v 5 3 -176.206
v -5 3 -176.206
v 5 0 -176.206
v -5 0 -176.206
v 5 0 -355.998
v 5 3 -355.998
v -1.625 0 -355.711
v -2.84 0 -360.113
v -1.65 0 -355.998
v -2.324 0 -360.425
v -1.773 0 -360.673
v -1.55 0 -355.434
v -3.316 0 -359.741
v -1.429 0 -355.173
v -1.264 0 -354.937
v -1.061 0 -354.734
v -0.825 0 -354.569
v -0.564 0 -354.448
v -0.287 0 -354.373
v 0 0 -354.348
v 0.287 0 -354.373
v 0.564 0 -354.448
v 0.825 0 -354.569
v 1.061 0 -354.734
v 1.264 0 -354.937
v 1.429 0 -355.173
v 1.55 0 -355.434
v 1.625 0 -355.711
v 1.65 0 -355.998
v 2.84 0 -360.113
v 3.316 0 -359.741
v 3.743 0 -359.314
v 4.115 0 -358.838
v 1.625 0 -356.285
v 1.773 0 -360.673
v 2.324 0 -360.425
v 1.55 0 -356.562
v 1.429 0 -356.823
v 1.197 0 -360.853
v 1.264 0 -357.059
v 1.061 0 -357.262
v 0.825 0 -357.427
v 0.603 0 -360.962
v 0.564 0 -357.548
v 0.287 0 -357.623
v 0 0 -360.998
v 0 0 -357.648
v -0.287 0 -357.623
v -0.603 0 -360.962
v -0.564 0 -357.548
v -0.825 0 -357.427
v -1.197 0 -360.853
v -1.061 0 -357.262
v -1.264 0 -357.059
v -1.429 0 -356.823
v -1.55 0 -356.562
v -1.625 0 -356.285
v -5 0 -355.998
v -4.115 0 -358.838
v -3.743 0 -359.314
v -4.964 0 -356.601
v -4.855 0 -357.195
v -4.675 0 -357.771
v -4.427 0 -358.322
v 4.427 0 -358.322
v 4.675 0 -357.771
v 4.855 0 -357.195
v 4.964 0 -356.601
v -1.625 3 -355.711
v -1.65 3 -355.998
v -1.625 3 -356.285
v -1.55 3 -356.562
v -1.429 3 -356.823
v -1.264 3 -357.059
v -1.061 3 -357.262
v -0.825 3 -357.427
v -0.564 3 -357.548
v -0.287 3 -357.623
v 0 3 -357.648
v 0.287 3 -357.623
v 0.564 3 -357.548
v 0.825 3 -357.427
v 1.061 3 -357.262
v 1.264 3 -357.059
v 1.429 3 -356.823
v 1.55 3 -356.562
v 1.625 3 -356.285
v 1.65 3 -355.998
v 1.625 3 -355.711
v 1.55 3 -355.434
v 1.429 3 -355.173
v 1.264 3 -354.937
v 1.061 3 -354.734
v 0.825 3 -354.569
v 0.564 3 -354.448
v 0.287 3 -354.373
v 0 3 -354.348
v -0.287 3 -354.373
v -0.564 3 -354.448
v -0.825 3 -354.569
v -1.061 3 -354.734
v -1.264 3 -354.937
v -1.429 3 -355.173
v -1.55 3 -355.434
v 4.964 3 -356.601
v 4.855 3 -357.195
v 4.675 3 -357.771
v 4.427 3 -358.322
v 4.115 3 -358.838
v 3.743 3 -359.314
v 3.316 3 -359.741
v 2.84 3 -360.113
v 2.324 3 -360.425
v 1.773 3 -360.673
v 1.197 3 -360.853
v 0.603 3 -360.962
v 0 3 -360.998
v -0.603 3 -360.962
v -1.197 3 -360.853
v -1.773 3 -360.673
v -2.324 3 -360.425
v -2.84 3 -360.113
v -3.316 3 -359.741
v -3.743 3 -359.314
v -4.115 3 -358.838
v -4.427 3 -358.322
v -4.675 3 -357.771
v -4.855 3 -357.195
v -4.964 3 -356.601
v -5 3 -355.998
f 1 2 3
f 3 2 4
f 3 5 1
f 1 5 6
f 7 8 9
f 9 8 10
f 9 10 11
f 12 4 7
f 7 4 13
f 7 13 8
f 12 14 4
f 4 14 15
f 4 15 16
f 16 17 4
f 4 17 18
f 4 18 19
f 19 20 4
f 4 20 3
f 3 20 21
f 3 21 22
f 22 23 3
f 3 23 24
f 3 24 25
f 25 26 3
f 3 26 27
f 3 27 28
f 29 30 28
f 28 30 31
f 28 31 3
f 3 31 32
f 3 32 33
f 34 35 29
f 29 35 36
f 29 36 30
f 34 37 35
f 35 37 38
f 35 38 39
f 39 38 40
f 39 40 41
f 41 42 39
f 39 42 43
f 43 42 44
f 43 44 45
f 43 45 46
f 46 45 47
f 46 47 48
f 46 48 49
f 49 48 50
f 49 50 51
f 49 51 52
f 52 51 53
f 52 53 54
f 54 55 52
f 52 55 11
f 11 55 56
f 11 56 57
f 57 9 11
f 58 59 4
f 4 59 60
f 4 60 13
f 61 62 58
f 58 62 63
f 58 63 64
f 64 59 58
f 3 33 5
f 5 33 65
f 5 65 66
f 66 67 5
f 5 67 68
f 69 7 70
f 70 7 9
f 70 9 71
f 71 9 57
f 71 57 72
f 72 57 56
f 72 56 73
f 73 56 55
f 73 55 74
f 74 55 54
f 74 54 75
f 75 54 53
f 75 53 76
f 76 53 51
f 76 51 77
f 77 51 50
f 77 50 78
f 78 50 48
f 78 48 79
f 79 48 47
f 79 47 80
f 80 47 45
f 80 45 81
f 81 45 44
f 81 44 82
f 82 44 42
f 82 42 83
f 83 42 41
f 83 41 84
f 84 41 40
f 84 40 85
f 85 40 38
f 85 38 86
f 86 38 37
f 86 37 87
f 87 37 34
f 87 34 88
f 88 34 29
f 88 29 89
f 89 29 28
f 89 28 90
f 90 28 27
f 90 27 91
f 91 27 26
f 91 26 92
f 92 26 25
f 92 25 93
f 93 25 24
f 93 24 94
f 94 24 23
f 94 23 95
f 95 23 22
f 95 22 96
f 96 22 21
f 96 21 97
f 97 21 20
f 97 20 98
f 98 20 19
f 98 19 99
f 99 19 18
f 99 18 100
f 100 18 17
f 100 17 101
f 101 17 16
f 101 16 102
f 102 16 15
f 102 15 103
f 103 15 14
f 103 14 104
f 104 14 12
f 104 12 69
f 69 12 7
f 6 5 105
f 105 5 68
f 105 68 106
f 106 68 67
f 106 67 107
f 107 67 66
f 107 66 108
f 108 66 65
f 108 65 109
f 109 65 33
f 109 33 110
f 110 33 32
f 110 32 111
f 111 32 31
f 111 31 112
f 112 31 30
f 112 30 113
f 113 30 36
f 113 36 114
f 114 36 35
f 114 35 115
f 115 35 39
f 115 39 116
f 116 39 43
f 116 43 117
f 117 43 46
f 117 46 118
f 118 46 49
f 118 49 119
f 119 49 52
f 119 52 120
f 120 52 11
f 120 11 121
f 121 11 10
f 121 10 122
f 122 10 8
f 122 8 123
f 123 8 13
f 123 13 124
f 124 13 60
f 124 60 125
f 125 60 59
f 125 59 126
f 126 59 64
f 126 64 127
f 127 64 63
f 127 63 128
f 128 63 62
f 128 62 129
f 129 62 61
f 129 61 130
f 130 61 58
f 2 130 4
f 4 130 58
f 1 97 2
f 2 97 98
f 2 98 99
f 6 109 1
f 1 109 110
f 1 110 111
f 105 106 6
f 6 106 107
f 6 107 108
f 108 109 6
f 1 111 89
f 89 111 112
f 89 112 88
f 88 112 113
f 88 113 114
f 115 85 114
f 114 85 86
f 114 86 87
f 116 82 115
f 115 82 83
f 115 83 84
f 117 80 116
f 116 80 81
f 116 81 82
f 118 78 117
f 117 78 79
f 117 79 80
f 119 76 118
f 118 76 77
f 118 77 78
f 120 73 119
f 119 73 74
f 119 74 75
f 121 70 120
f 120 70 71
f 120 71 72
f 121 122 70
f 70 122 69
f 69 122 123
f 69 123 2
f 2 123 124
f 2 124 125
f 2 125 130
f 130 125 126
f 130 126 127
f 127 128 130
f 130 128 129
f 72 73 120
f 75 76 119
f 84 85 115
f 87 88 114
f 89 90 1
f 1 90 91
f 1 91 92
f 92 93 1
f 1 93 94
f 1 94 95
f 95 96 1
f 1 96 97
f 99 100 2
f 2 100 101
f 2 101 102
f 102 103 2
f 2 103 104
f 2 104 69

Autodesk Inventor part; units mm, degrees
ref_plane "YZ Plane" through (0, 0, 0) normal (1, 0, 0) x (0, 1, 0)
ref_plane "XZ Plane" through (0, 0, 0) normal (0, 1, 0) x (-1, 0, 0)
ref_plane "XY Plane" through (0, 0, 0) normal (0, 0, 1) x (1, 0, 0)
sketch "Sketch1" plane through (0, 0, 0) normal (0, 1, 0) x (-1, 0, 0)
  line L0 (0, 0) -> (0, -355.998) construction
  line L1 (5, 0) -> (5, -355.998)
  line L2 (-5, -355.998) -> (-5, 0)
  arc A0 (5, 0) -> (-5, 0) centre (0, 0) ccw
  arc A1 (-5, -355.998) -> (5, -355.998) centre (0, -355.998) ccw
  circle A2 centre (0, 0) radius 1.65
  circle A3 centre (0, -355.998) radius 1.65
  circle A4 centre (0, -57.376) radius 1.65
  point P0 (0, -177.999)
  dimension "d0" = 3.3
  dimension "d1" = 3.3
  dimension "d2" = 10
  dimension "d3" = 355.998
  dimension "d14" = 3.3
  dimension "d15" = 57.376
extrude "Extrusion1" add sketch "Sketch1" along normal blind 3
sketch "Sketch2" plane through (0, 3, 0) normal (0, 1, 0) x (1, 0, 0)
  line L0 (-26.2185, 378.6248) -> (37.2853, 378.6248)
  line L1 (37.2853, 378.6248) -> (37.2853, 176.2061)
  line L2 (37.2853, 176.2061) -> (-26.2185, 176.2061)
  line L3 (-26.2185, 176.2061) -> (-26.2185, 378.6248)
  line L4 (-95.1798, 405.4155) -> (74.9908, 405.4155)
  line L5 (74.9908, 405.4155) -> (74.9908, -44.073)
  line L6 (74.9908, -44.073) -> (-95.1798, -44.073)
  line L7 (-95.1798, -44.073) -> (-95.1798, 405.4155)
  point P0 (0, 0)
extrude "Extrusion2" cut sketch "Sketch2" against normal blind 10
properties part number "Part_10_p2"
